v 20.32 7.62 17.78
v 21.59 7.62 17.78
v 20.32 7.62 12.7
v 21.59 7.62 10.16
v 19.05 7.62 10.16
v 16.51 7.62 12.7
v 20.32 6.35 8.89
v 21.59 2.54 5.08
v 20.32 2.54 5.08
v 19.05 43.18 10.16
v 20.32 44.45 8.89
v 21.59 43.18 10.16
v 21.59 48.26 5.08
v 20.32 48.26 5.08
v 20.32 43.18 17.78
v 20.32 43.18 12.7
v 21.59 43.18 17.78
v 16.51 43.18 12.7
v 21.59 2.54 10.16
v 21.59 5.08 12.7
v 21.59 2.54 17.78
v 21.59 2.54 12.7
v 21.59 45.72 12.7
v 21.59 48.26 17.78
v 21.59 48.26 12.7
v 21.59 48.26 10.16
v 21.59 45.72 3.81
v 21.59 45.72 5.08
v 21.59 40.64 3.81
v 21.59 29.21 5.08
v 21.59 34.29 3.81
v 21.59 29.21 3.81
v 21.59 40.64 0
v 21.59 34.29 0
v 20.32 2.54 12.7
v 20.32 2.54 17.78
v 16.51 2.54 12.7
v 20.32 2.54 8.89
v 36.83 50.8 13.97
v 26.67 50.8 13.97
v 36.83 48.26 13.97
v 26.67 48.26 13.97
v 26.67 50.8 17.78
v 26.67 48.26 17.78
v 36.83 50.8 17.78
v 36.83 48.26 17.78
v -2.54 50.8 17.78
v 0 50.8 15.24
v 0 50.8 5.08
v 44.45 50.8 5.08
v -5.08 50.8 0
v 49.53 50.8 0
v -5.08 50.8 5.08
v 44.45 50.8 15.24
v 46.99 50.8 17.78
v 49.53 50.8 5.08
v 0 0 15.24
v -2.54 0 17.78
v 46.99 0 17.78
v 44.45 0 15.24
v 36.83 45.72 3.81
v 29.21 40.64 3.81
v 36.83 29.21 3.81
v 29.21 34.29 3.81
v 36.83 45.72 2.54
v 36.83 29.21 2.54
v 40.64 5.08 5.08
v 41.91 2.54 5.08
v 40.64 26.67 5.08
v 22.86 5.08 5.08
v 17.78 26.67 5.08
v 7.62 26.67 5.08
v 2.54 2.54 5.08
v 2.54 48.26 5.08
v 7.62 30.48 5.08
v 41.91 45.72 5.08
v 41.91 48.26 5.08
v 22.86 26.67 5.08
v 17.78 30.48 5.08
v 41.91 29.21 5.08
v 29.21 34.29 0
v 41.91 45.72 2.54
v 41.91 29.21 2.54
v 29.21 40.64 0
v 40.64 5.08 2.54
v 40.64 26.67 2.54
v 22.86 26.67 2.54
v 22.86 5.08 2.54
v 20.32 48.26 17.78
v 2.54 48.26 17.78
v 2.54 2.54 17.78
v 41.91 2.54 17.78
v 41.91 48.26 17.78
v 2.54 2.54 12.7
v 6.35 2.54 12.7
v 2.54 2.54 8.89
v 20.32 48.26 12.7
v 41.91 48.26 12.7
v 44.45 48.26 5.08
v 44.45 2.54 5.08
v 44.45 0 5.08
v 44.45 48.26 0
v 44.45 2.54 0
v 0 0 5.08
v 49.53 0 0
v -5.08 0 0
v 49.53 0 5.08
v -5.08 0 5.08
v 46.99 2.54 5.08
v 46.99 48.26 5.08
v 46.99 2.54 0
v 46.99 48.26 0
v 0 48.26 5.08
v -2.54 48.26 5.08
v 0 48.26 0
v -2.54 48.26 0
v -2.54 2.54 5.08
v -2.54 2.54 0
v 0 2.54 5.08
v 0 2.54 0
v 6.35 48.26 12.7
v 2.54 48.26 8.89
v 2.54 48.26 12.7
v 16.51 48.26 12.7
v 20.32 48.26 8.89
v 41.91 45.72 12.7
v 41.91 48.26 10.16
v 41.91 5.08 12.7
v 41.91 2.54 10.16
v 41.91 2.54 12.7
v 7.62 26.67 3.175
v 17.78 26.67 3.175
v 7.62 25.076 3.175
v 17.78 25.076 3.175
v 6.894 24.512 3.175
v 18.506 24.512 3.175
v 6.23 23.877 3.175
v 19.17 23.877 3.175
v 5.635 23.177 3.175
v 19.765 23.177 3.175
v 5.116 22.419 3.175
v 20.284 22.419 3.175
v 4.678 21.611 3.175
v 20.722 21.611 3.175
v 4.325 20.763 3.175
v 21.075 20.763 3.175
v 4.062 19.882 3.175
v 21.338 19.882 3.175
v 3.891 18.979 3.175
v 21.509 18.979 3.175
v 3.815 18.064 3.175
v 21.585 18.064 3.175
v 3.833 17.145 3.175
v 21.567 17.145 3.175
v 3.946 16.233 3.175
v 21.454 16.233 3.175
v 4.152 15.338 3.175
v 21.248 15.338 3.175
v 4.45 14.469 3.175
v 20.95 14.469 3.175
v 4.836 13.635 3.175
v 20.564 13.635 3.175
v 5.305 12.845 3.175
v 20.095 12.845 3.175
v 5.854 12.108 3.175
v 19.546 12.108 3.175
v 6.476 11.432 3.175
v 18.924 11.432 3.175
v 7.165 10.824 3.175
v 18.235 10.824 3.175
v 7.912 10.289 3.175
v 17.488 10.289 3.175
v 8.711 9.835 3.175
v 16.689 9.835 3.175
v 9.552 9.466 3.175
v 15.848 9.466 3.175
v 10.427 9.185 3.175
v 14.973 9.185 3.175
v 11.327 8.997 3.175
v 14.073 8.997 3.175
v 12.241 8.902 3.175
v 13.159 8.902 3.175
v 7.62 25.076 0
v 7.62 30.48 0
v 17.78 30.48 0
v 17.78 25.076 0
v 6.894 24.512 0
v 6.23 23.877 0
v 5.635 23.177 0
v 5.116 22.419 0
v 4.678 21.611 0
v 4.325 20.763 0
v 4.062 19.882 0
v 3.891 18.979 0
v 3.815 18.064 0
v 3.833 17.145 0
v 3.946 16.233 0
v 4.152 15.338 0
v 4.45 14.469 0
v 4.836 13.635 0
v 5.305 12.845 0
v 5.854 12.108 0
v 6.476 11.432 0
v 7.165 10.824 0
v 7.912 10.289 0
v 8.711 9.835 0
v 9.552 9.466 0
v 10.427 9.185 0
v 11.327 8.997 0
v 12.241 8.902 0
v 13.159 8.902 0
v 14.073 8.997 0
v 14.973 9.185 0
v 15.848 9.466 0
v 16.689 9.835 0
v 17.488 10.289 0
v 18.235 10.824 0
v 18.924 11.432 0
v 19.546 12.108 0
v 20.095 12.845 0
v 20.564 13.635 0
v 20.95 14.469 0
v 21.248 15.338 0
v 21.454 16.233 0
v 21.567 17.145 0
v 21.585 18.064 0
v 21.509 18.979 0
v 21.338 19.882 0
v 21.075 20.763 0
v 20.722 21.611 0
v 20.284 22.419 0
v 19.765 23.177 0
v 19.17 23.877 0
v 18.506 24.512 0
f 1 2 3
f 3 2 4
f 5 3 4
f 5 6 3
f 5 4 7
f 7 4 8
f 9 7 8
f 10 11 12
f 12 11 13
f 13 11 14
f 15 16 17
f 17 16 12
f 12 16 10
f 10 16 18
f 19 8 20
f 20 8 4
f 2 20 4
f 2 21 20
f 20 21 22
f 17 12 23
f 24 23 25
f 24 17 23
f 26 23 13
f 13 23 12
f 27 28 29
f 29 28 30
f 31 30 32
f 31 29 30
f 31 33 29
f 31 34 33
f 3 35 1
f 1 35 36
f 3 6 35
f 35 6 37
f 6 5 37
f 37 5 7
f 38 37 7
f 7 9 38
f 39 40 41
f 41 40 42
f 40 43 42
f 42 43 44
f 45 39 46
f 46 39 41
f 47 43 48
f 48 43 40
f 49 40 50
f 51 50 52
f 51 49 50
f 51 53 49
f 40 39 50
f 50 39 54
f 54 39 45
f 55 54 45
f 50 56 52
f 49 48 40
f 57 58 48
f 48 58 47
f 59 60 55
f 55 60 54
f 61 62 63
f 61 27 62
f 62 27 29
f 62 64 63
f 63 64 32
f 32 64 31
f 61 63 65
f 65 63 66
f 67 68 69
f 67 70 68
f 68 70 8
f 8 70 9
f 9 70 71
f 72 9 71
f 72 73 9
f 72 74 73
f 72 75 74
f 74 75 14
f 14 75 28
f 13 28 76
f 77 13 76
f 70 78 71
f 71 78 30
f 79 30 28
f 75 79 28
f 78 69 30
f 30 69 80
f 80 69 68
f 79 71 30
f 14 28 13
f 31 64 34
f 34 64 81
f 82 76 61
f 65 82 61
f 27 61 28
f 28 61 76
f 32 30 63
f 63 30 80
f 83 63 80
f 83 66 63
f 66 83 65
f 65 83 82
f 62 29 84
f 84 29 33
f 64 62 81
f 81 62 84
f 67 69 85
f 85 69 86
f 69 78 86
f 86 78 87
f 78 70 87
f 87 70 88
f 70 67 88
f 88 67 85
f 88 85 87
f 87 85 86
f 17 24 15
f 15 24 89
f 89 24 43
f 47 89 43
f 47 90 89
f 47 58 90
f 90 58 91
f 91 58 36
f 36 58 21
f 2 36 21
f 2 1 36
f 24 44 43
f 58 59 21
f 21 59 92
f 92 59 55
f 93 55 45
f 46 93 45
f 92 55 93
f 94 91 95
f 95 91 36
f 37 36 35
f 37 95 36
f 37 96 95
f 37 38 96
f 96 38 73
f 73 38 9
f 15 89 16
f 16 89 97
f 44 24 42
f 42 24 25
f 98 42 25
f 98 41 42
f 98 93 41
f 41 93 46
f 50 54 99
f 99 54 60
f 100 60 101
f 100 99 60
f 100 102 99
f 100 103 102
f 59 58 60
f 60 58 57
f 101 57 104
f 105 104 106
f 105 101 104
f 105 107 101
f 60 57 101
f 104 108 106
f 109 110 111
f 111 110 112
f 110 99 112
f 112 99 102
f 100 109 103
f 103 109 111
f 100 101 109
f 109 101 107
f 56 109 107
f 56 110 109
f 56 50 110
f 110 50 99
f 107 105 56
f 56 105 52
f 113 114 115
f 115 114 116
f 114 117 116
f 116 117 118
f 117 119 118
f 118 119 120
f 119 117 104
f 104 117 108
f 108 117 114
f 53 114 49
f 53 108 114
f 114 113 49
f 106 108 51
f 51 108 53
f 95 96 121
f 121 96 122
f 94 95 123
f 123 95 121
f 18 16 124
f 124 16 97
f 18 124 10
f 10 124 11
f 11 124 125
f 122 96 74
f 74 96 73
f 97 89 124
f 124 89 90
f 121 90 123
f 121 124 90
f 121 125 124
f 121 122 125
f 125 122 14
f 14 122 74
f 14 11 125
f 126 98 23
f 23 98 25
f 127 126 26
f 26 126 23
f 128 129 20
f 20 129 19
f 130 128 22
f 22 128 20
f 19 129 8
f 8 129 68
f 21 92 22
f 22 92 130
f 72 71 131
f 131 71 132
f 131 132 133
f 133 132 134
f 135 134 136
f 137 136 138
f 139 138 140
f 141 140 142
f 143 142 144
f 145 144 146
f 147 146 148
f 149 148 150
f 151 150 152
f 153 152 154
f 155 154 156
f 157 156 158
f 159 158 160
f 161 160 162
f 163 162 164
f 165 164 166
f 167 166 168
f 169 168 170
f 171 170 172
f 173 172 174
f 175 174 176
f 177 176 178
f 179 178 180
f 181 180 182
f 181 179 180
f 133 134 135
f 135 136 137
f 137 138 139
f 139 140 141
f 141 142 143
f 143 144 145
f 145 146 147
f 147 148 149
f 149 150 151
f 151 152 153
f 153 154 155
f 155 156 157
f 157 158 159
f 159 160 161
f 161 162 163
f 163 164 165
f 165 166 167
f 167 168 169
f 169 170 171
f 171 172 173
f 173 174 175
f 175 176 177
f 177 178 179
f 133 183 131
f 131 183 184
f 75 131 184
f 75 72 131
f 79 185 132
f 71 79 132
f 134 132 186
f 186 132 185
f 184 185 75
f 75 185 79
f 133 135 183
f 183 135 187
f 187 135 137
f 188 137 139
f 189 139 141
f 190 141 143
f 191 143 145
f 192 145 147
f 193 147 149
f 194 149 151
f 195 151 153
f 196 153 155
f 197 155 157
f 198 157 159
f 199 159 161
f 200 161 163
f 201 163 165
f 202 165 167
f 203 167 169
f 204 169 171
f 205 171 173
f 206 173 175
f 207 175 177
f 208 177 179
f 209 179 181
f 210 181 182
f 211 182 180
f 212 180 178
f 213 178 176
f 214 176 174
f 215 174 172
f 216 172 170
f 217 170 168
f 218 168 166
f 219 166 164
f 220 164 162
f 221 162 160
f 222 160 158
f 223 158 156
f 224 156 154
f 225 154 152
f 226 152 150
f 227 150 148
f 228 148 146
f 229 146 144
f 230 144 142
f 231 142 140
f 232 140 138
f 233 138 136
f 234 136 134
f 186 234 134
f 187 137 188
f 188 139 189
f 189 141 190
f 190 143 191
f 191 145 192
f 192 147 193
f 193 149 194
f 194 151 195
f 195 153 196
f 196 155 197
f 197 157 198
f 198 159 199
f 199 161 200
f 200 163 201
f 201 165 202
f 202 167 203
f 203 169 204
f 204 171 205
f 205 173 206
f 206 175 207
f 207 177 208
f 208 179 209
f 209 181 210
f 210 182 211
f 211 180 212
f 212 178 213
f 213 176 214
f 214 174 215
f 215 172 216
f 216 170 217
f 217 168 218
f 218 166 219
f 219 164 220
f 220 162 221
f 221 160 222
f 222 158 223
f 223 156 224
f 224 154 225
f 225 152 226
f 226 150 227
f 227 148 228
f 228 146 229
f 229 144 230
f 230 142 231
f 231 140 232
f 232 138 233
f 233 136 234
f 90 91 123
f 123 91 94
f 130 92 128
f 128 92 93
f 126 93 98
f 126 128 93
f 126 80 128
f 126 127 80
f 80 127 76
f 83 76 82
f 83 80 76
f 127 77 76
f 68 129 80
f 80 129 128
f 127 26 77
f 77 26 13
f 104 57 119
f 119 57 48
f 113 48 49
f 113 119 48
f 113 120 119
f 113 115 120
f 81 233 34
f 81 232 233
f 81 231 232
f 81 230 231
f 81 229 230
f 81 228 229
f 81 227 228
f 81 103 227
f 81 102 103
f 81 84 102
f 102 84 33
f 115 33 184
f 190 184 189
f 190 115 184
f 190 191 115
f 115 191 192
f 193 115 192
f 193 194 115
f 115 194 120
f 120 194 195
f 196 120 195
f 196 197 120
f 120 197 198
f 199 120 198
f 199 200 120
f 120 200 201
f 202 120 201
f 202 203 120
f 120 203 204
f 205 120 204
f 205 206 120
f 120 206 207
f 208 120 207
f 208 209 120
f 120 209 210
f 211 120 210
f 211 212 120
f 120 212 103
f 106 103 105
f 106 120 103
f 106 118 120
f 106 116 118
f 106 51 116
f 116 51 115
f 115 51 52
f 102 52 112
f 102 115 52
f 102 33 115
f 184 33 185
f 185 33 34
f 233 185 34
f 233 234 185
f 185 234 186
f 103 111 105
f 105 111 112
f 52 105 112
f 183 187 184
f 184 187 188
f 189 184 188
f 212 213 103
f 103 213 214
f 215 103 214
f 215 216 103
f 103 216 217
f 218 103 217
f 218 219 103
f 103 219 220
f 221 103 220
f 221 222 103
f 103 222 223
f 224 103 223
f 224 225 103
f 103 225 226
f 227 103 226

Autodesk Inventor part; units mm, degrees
ref_plane "YZ Plane" through (0, 0, 0) normal (1, 0, 0) x (0, 1, 0)
ref_plane "XZ Plane" through (0, 0, 0) normal (0, 1, 0) x (-1, 0, 0)
ref_plane "XY Plane" through (0, 0, 0) normal (0, 0, 1) x (1, 0, 0)
sketch "Sketch2" plane through (0, 0, 0) normal (0, 0, 1) x (1, 0, 0)
  line L0 (0, 0) -> (44.45, 0)
  line L1 (44.45, 0) -> (44.45, 50.8)
  line L2 (44.45, 50.8) -> (0, 50.8)
  line L3 (0, 50.8) -> (0, 0)
  dimension "d0" = 50.8
  dimension "d1" = 44.45
extrude "Extrusion1" add sketch "Sketch2" along normal blind 25.4
sketch "Sketch3" plane through (0, 0, 25.4) normal (0, 0, 1) x (1, 0, 0)
  line L0 (2.54, 2.54) -> (20.32, 2.54)
  line L1 (20.32, 2.54) -> (20.32, 48.26)
  line L2 (20.32, 48.26) -> (2.54, 48.26)
  line L3 (2.54, 48.26) -> (2.54, 2.54)
  line L4 (0, 0) -> (44.45, 0) projected
  line L5 (0, 50.8) -> (0, 0) projected
  line L6 (44.45, 50.8) -> (0, 50.8) projected
  line L7 (21.59, 2.54) -> (41.91, 2.54)
  line L8 (41.91, 2.54) -> (41.91, 48.26)
  line L9 (41.91, 48.26) -> (21.59, 48.26)
  line L10 (21.59, 48.26) -> (21.59, 2.54)
  line L11 (44.45, 0) -> (44.45, 50.8) projected
  dimension "d4" = 2.54
  dimension "d5" = 2.54
  dimension "d6" = 2.54
  dimension "d7" = 20.32
  dimension "d8" = 2.54
  dimension "d9" = 2.54
  dimension "d10" = 2.54
  dimension "d11" = 22.86
extrude "Extrusion2" cut sketch "Sketch3" against normal blind 20.32 contours L3 L2 L1 L0 | L10 L9 L8 L7
sketch "Sketch4" plane through (0, 0, 0) normal (0, 0, -1) x (-1, 0, 0)
  circle A0 centre (-12.7, 17.78) radius 8.89
  line L0 (0, 50.8) -> (0, 0) projected
  line L1 (0, 0) -> (-44.45, 0) projected
  dimension "d14" = 17.78
  dimension "d17" = 12.7
  dimension "d18" = 17.78
extrude "Extrusion3" cut sketch "Sketch4" against normal blind 3.175
sketch "Sketch5" plane through (0, 0, 0) normal (0, 0, -1) x (-1, 0, 0)
  point P0 (0, 0)
sketch "Sketch6" plane through (12.7, 17.78, 3.175) normal (0, 0, -1) x (-1, 0, 0)
  circle A0 centre (0, 0) radius 8.89 projected
  line L0 (0, 0) -> (-5.08, 0)
  line L1 (-5.08, 0) -> (-5.08, 12.7)
  line L2 (-5.08, 12.7) -> (0, 12.7)
  line L3 (0, 12.7) -> (0, 0)
  line L4 (0, 0) -> (5.08, 0)
  line L5 (5.08, 0) -> (5.08, 12.7)
  line L6 (5.08, 12.7) -> (0, 12.7)
  line L7 (0, 12.7) -> (0, 0)
  point P0 (12.7, -17.78)
  dimension "d21" = 12.7
  dimension "d22" = 5.08
  dimension "d23" = 5.08
extrude "Extrusion4" cut sketch "Sketch6" along normal blind 5.08 contours L5 L4 L3 A0 | A0 L3 L6 L5 | L1 L2 L3 A0 | A0 L3 L0 L1
sketch "Sketch7" plane through (0, 0, 3.175) normal (0, 0, -1) x (-1, 0, 0)
  point P0 (0, 0)
sketch "Sketch8" plane through (0, 0, 3.175) normal (0, 0, -1) x (-1, 0, 0)
  line L0 (-7.62, 25.0756) -> (-7.62, 30.48) projected
  line L1 (-17.78, 30.48) -> (-7.62, 30.48)
  line L2 (-7.62, 30.48) -> (-7.62, 26.67)
  line L3 (-7.62, 26.67) -> (-17.78, 26.67)
  line L4 (-17.78, 26.67) -> (-17.78, 30.48)
  point P0 (0, 0)
  dimension "d26" = 3.81
extrude "Extrusion5" cut sketch "Sketch8" against normal blind 2.54
sketch "Sketch14" plane through (41.91, 2.54, 25.4) normal (-1, 0, 0) x (0, 0, 1)
  line L0 (0, 0) -> (-20.32, 0) projected
  line L1 (0, 45.72) -> (-20.32, 45.72) projected
  line L2 (-12.7, 45.72) -> (-12.7, 43.18)
  line L3 (-12.7, 43.18) -> (-15.24, 45.72)
  line L4 (-12.7, 0) -> (-12.7, 2.54)
  line L5 (-12.7, 2.54) -> (-15.24, 0)
  point P0 (-25.4, -2.54)
  dimension "d52" = 45
  dimension "d53" = 2.54
  dimension "d54" = 2.54
  dimension "d55" = 45
  dimension "d56" = 5.08
  dimension "d57" = 5.08
extrude "Arduino Holder" add sketch "Sketch14" along normal blind 20.32
sketch "Sketch16" plane through (2.54, 2.54, 25.4) normal (0, 1, 0) x (1, 0, 0)
  line L0 (0, 12.7) -> (3.81, 12.7)
  line L1 (3.81, 12.7) -> (0, 16.51)
  line L2 (0, 0) -> (0, 20.32) projected
  line L3 (17.78, 5.08) -> (17.78, 20.32)
  line L4 (17.78, 16.51) -> (13.97, 12.7)
  line L5 (13.97, 12.7) -> (17.78, 12.7)
  line L6 (17.78, 20.32) -> (0, 20.32) projected
  point P0 (-2.54, 25.4)
  dimension "d60" = 45
  dimension "d61" = 3.81
  dimension "d62" = 3.81
  dimension "d64" = 45
  dimension "d144" = 7.62
  dimension "d145" = 7.62
extrude "Bluetooth Holder" add sketch "Sketch16" along normal blind 45.72
sketch "Sketch17" plane through (0, 0, 0) normal (-1, 0, 0) x (0, 0, 1)
  line L0 (0, 50.8) -> (25.4, 50.8) projected
  line L1 (0, 0) -> (5.08, 0)
  line L2 (5.08, 0) -> (5.08, 50.8)
  line L3 (5.08, 50.8) -> (0, 50.8)
  line L4 (0, 50.8) -> (0, 0)
  dimension "d68" = 5.08
extrude "Extrusion13" add sketch "Sketch17" along normal blind 5.08
sketch "Sketch18" plane through (0, 0, 5.08) normal (0, 0, 1) x (1, 0, 0)
  line L0 (0, 50.8) -> (0, 0) projected
  line L1 (0, 2.54) -> (-2.54, 2.54)
  line L2 (-2.54, 2.54) -> (-2.54, 48.26)
  line L3 (-2.54, 48.26) -> (0, 48.26)
  line L4 (0, 48.26) -> (0, 2.54)
  line L5 (0, 50.8) -> (-5.08, 50.8) projected
  line L6 (0, 0) -> (-5.08, 0) projected
  dimension "d71" = 2.54
  dimension "d72" = 2.54
  dimension "d73" = 2.54
extrude "Extrusion14" cut sketch "Sketch18" against normal blind 5.08
sketch "Sketch19" plane through (44.45, 0, 0) normal (1, 0, 0) x (0, 0, -1)
  line L0 (0, 50.8) -> (-25.4, 50.8) projected
  line L1 (0, 0) -> (-5.08, 0)
  line L2 (-5.08, 0) -> (-5.08, 50.8)
  line L3 (-5.08, 50.8) -> (0, 50.8)
  line L4 (0, 50.8) -> (0, 0)
  dimension "d76" = 5.08
extrude "Extrusion15" add sketch "Sketch19" along normal blind 5.08
sketch "Sketch21" plane through (44.45, 0, 5.08) normal (0, 0, 1) x (1, 0, 0)
  line L0 (0, 0) -> (0, 50.8) projected
  line L1 (0, 2.54) -> (2.54, 2.54)
  line L2 (2.54, 2.54) -> (2.54, 48.26)
  line L3 (2.54, 48.26) -> (0, 48.26)
  line L4 (0, 48.26) -> (0, 2.54)
  line L5 (0, 50.8) -> (5.08, 50.8) projected
  line L6 (0, 0) -> (5.08, 0) projected
  line L7 (5.08, 50.8) -> (5.08, 0) projected
  point P0 (-44.45, 0)
  dimension "d79" = 2.54
  dimension "d81" = 2.54
  dimension "d82" = 2.54
extrude "Extrusion16" cut sketch "Sketch21" against normal blind 5.08 contours L0 L3 L2 L1
sketch "Sketch28" plane through (0, 0, 25.4) normal (-1, 0, 0) x (0, 0, 1)
  line L0 (-20.32, 0) -> (0, 0) projected
  line L1 (0, 50.8) -> (-7.62, 50.8)
  line L2 (-7.62, 50.8) -> (-7.62, 0)
  line L3 (-7.62, 0) -> (0, 0)
  line L4 (0, 0) -> (0, 50.8)
  point P0 (-25.4, 0)
  dimension "d141" = 7.62
extrude "Height Reduce" cut sketch "Sketch28" against normal blind 50.8
sketch "Sketch30" plane through (0, 0, 5.08) normal (0, 0, 1) x (1, 0, 0)
  line L0 (22.86, 5.08) -> (40.64, 5.08)
  line L1 (40.64, 5.08) -> (40.64, 26.67)
  line L2 (40.64, 26.67) -> (22.86, 26.67)
  line L3 (22.86, 26.67) -> (22.86, 5.08)
  line L4 (21.59, 2.54) -> (21.59, 48.26) projected
  line L5 (41.91, 48.26) -> (41.91, 2.54) projected
  line L6 (41.91, 2.54) -> (21.59, 2.54) projected
  point P0 (0, 0)
  point P1 (24.13, 12.7)
  point P2 (44.45, 30.48)
  dimension "d146" = 1.27
  dimension "d147" = 1.27
  dimension "d148" = 21.59
  dimension "d149" = 2.54
  dimension "d150" = 17.78
extrude "Extrusion27" cut sketch "Sketch30" against normal blind 2.54
sketch "Sketch31" plane through (0, 0, 5.08) normal (0, 0, 1) x (1, 0, 0)
  line L0 (21.59, 2.54) -> (21.59, 48.26) projected
  line L1 (41.91, 48.26) -> (41.91, 2.54) projected
  line L2 (21.59, 45.72) -> (41.91, 45.72)
  line L3 (41.91, 45.72) -> (41.91, 29.21)
  line L4 (41.91, 29.21) -> (21.59, 29.21)
  line L5 (21.59, 29.21) -> (21.59, 45.72)
  line L6 (21.59, 48.26) -> (41.91, 48.26) projected
  line L7 (21.59, 40.64) -> (29.21, 40.64)
  line L8 (29.21, 40.64) -> (29.21, 34.29)
  line L9 (29.21, 34.29) -> (21.59, 34.29)
  line L10 (21.59, 34.29) -> (21.59, 40.64)
  line L11 (41.91, 45.72) -> (36.83, 45.72)
  line L12 (36.83, 45.72) -> (36.83, 29.21)
  line L13 (36.83, 29.21) -> (41.91, 29.21)
  line L14 (41.91, 29.21) -> (41.91, 45.72)
  point P0 (0, 0)
  point P1 (24.13, 33.02)
  dimension "d157" = 2.54
  dimension "d158" = 16.51
  dimension "d159" = 5.08
  dimension "d160" = 6.35
  dimension "d161" = 7.62
  dimension "d162" = 5.08
  dimension "d163" = 5.08
extrude "Extrusion28" cut sketch "Sketch31" against normal blind 25.4 contours L0 L7 L8 L9
extrude "Extrusion29" cut sketch "Sketch31" against normal blind 2.54 contours L12 L2 L1 L4
extrude "Extrusion30" cut sketch "Sketch31" against normal blind 1.27 contours L0 L9 L8 L7 L2 L12 L4
sketch "Sketch33" plane through (44.45, 2.54, 0) normal (1, 0, 0) x (0, 0, -1)
  line L0 (-5.08, 48.26) -> (-17.78, 48.26) projected
  line L1 (-17.78, -2.54) -> (-15.24, -2.54)
  line L2 (-15.24, -2.54) -> (-15.24, 48.26)
  line L3 (-15.24, 48.26) -> (-17.78, 48.26)
  line L4 (-17.78, 48.26) -> (-17.78, -2.54)
  point P0 (0, -2.54)
  dimension "d194" = 2.54
extrude "Extrusion33" add sketch "Sketch33" along normal blind 2.54
sketch "Sketch35" plane through (0, 2.54, 0) normal (-1, 0, 0) x (0, 0, 1)
  line L0 (5.08, 48.26) -> (17.78, 48.26) projected
  line L1 (17.78, -2.54) -> (15.24, -2.54)
  line L2 (15.24, -2.54) -> (15.24, 48.26)
  line L3 (15.24, 48.26) -> (17.78, 48.26)
  line L4 (17.78, 48.26) -> (17.78, -2.54)
  point P0 (0, -2.54)
  dimension "d197" = 2.54
extrude "Extrusion34" add sketch "Sketch35" along normal blind 2.54
sketch "Sketch36" plane through (-5.08, 0, 5.08) normal (0, -1, 0) x (1, 0, 0)
  line L0 (2.54, 12.7) -> (5.08, 10.16)
  line L1 (5.08, 10.16) -> (2.54, 10.16)
  line L2 (5.08, 10.16) -> (2.54, 10.16) projected
  line L3 (2.54, 10.16) -> (2.54, 12.7)
  line L4 (49.53, 10.16) -> (52.07, 12.7)
  line L5 (52.07, 12.7) -> (52.07, 10.16)
  line L6 (52.07, 10.16) -> (49.53, 10.16)
  point P0 (5.08, -5.08)
extrude "Extrusion35" cut sketch "Sketch36" against normal blind 50.8
sketch "Sketch37" plane through (-5.08, 50.8, 5.08) normal (0, 1, 0) x (1, 0, 0)
  line L0 (52.07, -12.7) -> (2.54, -12.7) projected
  line L1 (41.91, -12.7) -> (31.75, -12.7)
  line L2 (31.75, -12.7) -> (31.75, -8.89)
  line L3 (31.75, -8.89) -> (41.91, -8.89)
  line L4 (41.91, -8.89) -> (41.91, -12.7)
  line L5 (26.67, -12.7) -> (26.67, -7.62) projected
  line L6 (46.99, -12.7) -> (46.99, -7.62) projected
  point P0 (5.08, 5.08)
  dimension "d202" = 3.81
  dimension "d203" = 10.16
  dimension "d204" = 5.08
  dimension "d205" = 5.08
extrude "Extrusion36" cut sketch "Sketch37" against normal blind 2.54
sketch "Sketch39" plane through (21.59, 2.54, 12.7) normal (1, 0, 0) x (0, 0, -1)
  line L0 (7.62, 0) -> (2.54, 5.08)
  line L1 (2.54, 5.08) -> (-5.08, 5.08)
  line L2 (-5.08, 45.72) -> (-5.08, 0) projected
  line L3 (-5.08, 5.08) -> (-5.08, 40.64)
  line L4 (-5.08, 40.64) -> (2.54, 40.64)
  line L5 (2.54, 40.64) -> (7.62, 45.72)
  line L6 (7.62, 45.72) -> (7.62, 0)
  line L7 (7.62, 2.54) -> (10.16, 2.54) projected
  point P0 (12.7, -2.54)
  dimension "d224" = 45
  dimension "d225" = 45
  dimension "d226" = 5.08
extrude "Extrusion38" cut sketch "Sketch39" against normal blind 5.08
properties part number "nano_enclosure_v3_1"
